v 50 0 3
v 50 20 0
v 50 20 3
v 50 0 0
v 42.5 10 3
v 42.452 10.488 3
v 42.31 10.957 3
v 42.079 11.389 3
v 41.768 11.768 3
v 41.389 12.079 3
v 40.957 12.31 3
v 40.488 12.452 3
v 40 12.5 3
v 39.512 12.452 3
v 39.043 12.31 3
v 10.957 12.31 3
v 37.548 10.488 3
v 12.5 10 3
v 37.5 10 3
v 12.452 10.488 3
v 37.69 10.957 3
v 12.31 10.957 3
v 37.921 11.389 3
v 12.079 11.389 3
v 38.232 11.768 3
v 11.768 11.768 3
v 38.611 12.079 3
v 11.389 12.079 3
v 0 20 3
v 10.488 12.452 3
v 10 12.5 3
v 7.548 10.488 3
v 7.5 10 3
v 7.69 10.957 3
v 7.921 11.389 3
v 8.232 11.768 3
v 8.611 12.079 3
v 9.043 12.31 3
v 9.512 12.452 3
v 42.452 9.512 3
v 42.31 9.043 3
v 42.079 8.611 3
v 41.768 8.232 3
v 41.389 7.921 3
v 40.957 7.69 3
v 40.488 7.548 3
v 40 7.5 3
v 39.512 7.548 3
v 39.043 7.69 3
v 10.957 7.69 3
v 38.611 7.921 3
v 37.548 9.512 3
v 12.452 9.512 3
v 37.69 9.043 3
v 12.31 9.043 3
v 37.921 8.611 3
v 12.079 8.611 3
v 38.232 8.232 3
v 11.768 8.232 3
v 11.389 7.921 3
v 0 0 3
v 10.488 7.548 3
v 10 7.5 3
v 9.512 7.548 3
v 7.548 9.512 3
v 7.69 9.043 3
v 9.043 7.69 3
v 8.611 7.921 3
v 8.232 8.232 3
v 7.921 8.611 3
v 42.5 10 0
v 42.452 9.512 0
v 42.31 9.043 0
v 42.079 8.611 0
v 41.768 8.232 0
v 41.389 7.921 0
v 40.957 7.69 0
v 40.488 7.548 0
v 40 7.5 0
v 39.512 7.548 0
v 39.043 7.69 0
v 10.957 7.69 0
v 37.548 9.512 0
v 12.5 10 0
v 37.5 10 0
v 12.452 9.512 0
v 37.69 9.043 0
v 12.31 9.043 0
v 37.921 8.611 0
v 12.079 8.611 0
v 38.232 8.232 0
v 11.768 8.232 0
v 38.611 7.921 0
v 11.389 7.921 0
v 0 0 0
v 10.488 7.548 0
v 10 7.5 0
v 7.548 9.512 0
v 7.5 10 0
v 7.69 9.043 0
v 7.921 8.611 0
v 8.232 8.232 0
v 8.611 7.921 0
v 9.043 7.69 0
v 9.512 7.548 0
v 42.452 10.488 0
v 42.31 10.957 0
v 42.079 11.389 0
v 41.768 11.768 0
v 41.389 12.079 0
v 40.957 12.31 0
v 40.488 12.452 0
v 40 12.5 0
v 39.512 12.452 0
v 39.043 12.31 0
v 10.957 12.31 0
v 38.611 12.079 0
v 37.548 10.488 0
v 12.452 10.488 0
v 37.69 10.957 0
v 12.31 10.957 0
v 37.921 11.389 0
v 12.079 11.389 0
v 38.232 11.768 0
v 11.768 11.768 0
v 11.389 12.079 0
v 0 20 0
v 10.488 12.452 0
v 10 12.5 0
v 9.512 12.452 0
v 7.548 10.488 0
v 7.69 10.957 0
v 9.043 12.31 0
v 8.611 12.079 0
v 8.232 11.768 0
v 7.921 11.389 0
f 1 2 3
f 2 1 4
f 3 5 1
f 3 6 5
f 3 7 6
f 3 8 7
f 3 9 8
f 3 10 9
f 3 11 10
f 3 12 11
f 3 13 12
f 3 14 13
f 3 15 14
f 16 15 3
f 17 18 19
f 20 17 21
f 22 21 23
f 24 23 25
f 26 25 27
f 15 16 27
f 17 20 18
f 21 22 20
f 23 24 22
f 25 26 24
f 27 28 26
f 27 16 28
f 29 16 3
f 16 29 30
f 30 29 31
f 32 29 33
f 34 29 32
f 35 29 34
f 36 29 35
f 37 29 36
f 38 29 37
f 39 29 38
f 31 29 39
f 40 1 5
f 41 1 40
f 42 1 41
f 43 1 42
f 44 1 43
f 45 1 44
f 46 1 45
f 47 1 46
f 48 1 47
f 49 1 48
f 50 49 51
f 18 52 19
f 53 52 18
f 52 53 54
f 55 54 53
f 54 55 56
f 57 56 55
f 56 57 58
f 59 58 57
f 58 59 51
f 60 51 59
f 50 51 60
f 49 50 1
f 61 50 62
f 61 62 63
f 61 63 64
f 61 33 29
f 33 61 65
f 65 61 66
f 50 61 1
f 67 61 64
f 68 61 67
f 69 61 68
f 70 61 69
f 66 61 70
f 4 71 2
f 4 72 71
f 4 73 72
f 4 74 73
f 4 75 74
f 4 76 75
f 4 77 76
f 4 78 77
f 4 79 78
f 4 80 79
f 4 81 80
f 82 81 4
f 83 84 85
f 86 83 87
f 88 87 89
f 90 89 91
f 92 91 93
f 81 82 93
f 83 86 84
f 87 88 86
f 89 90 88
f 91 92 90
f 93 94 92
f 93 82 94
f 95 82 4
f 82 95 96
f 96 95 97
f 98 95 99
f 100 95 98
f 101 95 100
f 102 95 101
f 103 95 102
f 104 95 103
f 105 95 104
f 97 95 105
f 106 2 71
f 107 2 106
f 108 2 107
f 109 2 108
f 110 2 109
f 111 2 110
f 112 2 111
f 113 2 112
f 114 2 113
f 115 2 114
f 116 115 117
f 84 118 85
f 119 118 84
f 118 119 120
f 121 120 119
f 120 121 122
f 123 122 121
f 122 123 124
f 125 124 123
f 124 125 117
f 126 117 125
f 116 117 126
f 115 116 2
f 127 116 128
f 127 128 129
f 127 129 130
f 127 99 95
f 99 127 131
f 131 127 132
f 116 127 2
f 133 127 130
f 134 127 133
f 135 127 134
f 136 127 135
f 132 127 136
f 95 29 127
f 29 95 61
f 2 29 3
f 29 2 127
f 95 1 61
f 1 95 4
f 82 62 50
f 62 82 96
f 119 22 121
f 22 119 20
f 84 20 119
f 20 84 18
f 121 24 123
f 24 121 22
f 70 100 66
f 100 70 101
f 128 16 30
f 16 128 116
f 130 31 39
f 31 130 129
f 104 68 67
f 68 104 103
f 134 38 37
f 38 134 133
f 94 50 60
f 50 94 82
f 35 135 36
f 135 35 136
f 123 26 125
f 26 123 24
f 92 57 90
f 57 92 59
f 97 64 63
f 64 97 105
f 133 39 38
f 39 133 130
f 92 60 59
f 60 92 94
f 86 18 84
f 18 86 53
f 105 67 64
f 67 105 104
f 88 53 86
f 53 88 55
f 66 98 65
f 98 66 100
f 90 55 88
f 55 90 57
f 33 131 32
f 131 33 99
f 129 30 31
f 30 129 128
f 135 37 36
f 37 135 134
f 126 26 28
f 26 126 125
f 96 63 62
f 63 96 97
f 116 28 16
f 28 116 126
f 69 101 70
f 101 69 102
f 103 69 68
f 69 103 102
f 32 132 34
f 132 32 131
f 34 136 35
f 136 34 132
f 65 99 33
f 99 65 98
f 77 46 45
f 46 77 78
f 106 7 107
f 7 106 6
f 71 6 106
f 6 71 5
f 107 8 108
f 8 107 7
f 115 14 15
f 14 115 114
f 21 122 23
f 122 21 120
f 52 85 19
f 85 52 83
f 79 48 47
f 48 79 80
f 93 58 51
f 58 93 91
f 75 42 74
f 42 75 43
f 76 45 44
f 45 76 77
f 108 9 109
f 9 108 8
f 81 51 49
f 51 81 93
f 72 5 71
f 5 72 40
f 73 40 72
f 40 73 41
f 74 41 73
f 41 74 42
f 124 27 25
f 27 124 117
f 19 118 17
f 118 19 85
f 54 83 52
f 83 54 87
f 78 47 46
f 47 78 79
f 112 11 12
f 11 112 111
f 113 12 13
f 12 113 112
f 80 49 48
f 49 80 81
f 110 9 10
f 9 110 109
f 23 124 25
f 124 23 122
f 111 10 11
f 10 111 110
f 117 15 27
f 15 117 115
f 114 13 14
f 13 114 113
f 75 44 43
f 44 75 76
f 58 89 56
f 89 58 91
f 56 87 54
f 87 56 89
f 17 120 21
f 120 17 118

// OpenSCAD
// Mounting Bracket

// Parameters
thickness = 3;
width = 50;
height = 20;
hole_diameter = 5;
hole_offset_x = 10;
hole_offset_y = 10;

module mounting_bracket() {
  difference() {
    cube([width, height, thickness]);
    
    // Holes for mounting
    translate([hole_offset_x, hole_offset_y, 0])
      cylinder(h = thickness, r = hole_diameter / 2, $fn = 32);
    translate([width - hole_offset_x, hole_offset_y, 0])
      cylinder(h = thickness, r = hole_diameter / 2, $fn = 32);
    translate([hole_offset_x, height - hole_offset_y, 0])
      cylinder(h = thickness, r = hole_diameter / 2, $fn = 32);
    translate([width - hole_offset_x, height - hole_offset_y, thickness])
      cylinder(h = thickness, r = hole_diameter / 2, $fn = 32);
  }
}

mounting_bracket();
